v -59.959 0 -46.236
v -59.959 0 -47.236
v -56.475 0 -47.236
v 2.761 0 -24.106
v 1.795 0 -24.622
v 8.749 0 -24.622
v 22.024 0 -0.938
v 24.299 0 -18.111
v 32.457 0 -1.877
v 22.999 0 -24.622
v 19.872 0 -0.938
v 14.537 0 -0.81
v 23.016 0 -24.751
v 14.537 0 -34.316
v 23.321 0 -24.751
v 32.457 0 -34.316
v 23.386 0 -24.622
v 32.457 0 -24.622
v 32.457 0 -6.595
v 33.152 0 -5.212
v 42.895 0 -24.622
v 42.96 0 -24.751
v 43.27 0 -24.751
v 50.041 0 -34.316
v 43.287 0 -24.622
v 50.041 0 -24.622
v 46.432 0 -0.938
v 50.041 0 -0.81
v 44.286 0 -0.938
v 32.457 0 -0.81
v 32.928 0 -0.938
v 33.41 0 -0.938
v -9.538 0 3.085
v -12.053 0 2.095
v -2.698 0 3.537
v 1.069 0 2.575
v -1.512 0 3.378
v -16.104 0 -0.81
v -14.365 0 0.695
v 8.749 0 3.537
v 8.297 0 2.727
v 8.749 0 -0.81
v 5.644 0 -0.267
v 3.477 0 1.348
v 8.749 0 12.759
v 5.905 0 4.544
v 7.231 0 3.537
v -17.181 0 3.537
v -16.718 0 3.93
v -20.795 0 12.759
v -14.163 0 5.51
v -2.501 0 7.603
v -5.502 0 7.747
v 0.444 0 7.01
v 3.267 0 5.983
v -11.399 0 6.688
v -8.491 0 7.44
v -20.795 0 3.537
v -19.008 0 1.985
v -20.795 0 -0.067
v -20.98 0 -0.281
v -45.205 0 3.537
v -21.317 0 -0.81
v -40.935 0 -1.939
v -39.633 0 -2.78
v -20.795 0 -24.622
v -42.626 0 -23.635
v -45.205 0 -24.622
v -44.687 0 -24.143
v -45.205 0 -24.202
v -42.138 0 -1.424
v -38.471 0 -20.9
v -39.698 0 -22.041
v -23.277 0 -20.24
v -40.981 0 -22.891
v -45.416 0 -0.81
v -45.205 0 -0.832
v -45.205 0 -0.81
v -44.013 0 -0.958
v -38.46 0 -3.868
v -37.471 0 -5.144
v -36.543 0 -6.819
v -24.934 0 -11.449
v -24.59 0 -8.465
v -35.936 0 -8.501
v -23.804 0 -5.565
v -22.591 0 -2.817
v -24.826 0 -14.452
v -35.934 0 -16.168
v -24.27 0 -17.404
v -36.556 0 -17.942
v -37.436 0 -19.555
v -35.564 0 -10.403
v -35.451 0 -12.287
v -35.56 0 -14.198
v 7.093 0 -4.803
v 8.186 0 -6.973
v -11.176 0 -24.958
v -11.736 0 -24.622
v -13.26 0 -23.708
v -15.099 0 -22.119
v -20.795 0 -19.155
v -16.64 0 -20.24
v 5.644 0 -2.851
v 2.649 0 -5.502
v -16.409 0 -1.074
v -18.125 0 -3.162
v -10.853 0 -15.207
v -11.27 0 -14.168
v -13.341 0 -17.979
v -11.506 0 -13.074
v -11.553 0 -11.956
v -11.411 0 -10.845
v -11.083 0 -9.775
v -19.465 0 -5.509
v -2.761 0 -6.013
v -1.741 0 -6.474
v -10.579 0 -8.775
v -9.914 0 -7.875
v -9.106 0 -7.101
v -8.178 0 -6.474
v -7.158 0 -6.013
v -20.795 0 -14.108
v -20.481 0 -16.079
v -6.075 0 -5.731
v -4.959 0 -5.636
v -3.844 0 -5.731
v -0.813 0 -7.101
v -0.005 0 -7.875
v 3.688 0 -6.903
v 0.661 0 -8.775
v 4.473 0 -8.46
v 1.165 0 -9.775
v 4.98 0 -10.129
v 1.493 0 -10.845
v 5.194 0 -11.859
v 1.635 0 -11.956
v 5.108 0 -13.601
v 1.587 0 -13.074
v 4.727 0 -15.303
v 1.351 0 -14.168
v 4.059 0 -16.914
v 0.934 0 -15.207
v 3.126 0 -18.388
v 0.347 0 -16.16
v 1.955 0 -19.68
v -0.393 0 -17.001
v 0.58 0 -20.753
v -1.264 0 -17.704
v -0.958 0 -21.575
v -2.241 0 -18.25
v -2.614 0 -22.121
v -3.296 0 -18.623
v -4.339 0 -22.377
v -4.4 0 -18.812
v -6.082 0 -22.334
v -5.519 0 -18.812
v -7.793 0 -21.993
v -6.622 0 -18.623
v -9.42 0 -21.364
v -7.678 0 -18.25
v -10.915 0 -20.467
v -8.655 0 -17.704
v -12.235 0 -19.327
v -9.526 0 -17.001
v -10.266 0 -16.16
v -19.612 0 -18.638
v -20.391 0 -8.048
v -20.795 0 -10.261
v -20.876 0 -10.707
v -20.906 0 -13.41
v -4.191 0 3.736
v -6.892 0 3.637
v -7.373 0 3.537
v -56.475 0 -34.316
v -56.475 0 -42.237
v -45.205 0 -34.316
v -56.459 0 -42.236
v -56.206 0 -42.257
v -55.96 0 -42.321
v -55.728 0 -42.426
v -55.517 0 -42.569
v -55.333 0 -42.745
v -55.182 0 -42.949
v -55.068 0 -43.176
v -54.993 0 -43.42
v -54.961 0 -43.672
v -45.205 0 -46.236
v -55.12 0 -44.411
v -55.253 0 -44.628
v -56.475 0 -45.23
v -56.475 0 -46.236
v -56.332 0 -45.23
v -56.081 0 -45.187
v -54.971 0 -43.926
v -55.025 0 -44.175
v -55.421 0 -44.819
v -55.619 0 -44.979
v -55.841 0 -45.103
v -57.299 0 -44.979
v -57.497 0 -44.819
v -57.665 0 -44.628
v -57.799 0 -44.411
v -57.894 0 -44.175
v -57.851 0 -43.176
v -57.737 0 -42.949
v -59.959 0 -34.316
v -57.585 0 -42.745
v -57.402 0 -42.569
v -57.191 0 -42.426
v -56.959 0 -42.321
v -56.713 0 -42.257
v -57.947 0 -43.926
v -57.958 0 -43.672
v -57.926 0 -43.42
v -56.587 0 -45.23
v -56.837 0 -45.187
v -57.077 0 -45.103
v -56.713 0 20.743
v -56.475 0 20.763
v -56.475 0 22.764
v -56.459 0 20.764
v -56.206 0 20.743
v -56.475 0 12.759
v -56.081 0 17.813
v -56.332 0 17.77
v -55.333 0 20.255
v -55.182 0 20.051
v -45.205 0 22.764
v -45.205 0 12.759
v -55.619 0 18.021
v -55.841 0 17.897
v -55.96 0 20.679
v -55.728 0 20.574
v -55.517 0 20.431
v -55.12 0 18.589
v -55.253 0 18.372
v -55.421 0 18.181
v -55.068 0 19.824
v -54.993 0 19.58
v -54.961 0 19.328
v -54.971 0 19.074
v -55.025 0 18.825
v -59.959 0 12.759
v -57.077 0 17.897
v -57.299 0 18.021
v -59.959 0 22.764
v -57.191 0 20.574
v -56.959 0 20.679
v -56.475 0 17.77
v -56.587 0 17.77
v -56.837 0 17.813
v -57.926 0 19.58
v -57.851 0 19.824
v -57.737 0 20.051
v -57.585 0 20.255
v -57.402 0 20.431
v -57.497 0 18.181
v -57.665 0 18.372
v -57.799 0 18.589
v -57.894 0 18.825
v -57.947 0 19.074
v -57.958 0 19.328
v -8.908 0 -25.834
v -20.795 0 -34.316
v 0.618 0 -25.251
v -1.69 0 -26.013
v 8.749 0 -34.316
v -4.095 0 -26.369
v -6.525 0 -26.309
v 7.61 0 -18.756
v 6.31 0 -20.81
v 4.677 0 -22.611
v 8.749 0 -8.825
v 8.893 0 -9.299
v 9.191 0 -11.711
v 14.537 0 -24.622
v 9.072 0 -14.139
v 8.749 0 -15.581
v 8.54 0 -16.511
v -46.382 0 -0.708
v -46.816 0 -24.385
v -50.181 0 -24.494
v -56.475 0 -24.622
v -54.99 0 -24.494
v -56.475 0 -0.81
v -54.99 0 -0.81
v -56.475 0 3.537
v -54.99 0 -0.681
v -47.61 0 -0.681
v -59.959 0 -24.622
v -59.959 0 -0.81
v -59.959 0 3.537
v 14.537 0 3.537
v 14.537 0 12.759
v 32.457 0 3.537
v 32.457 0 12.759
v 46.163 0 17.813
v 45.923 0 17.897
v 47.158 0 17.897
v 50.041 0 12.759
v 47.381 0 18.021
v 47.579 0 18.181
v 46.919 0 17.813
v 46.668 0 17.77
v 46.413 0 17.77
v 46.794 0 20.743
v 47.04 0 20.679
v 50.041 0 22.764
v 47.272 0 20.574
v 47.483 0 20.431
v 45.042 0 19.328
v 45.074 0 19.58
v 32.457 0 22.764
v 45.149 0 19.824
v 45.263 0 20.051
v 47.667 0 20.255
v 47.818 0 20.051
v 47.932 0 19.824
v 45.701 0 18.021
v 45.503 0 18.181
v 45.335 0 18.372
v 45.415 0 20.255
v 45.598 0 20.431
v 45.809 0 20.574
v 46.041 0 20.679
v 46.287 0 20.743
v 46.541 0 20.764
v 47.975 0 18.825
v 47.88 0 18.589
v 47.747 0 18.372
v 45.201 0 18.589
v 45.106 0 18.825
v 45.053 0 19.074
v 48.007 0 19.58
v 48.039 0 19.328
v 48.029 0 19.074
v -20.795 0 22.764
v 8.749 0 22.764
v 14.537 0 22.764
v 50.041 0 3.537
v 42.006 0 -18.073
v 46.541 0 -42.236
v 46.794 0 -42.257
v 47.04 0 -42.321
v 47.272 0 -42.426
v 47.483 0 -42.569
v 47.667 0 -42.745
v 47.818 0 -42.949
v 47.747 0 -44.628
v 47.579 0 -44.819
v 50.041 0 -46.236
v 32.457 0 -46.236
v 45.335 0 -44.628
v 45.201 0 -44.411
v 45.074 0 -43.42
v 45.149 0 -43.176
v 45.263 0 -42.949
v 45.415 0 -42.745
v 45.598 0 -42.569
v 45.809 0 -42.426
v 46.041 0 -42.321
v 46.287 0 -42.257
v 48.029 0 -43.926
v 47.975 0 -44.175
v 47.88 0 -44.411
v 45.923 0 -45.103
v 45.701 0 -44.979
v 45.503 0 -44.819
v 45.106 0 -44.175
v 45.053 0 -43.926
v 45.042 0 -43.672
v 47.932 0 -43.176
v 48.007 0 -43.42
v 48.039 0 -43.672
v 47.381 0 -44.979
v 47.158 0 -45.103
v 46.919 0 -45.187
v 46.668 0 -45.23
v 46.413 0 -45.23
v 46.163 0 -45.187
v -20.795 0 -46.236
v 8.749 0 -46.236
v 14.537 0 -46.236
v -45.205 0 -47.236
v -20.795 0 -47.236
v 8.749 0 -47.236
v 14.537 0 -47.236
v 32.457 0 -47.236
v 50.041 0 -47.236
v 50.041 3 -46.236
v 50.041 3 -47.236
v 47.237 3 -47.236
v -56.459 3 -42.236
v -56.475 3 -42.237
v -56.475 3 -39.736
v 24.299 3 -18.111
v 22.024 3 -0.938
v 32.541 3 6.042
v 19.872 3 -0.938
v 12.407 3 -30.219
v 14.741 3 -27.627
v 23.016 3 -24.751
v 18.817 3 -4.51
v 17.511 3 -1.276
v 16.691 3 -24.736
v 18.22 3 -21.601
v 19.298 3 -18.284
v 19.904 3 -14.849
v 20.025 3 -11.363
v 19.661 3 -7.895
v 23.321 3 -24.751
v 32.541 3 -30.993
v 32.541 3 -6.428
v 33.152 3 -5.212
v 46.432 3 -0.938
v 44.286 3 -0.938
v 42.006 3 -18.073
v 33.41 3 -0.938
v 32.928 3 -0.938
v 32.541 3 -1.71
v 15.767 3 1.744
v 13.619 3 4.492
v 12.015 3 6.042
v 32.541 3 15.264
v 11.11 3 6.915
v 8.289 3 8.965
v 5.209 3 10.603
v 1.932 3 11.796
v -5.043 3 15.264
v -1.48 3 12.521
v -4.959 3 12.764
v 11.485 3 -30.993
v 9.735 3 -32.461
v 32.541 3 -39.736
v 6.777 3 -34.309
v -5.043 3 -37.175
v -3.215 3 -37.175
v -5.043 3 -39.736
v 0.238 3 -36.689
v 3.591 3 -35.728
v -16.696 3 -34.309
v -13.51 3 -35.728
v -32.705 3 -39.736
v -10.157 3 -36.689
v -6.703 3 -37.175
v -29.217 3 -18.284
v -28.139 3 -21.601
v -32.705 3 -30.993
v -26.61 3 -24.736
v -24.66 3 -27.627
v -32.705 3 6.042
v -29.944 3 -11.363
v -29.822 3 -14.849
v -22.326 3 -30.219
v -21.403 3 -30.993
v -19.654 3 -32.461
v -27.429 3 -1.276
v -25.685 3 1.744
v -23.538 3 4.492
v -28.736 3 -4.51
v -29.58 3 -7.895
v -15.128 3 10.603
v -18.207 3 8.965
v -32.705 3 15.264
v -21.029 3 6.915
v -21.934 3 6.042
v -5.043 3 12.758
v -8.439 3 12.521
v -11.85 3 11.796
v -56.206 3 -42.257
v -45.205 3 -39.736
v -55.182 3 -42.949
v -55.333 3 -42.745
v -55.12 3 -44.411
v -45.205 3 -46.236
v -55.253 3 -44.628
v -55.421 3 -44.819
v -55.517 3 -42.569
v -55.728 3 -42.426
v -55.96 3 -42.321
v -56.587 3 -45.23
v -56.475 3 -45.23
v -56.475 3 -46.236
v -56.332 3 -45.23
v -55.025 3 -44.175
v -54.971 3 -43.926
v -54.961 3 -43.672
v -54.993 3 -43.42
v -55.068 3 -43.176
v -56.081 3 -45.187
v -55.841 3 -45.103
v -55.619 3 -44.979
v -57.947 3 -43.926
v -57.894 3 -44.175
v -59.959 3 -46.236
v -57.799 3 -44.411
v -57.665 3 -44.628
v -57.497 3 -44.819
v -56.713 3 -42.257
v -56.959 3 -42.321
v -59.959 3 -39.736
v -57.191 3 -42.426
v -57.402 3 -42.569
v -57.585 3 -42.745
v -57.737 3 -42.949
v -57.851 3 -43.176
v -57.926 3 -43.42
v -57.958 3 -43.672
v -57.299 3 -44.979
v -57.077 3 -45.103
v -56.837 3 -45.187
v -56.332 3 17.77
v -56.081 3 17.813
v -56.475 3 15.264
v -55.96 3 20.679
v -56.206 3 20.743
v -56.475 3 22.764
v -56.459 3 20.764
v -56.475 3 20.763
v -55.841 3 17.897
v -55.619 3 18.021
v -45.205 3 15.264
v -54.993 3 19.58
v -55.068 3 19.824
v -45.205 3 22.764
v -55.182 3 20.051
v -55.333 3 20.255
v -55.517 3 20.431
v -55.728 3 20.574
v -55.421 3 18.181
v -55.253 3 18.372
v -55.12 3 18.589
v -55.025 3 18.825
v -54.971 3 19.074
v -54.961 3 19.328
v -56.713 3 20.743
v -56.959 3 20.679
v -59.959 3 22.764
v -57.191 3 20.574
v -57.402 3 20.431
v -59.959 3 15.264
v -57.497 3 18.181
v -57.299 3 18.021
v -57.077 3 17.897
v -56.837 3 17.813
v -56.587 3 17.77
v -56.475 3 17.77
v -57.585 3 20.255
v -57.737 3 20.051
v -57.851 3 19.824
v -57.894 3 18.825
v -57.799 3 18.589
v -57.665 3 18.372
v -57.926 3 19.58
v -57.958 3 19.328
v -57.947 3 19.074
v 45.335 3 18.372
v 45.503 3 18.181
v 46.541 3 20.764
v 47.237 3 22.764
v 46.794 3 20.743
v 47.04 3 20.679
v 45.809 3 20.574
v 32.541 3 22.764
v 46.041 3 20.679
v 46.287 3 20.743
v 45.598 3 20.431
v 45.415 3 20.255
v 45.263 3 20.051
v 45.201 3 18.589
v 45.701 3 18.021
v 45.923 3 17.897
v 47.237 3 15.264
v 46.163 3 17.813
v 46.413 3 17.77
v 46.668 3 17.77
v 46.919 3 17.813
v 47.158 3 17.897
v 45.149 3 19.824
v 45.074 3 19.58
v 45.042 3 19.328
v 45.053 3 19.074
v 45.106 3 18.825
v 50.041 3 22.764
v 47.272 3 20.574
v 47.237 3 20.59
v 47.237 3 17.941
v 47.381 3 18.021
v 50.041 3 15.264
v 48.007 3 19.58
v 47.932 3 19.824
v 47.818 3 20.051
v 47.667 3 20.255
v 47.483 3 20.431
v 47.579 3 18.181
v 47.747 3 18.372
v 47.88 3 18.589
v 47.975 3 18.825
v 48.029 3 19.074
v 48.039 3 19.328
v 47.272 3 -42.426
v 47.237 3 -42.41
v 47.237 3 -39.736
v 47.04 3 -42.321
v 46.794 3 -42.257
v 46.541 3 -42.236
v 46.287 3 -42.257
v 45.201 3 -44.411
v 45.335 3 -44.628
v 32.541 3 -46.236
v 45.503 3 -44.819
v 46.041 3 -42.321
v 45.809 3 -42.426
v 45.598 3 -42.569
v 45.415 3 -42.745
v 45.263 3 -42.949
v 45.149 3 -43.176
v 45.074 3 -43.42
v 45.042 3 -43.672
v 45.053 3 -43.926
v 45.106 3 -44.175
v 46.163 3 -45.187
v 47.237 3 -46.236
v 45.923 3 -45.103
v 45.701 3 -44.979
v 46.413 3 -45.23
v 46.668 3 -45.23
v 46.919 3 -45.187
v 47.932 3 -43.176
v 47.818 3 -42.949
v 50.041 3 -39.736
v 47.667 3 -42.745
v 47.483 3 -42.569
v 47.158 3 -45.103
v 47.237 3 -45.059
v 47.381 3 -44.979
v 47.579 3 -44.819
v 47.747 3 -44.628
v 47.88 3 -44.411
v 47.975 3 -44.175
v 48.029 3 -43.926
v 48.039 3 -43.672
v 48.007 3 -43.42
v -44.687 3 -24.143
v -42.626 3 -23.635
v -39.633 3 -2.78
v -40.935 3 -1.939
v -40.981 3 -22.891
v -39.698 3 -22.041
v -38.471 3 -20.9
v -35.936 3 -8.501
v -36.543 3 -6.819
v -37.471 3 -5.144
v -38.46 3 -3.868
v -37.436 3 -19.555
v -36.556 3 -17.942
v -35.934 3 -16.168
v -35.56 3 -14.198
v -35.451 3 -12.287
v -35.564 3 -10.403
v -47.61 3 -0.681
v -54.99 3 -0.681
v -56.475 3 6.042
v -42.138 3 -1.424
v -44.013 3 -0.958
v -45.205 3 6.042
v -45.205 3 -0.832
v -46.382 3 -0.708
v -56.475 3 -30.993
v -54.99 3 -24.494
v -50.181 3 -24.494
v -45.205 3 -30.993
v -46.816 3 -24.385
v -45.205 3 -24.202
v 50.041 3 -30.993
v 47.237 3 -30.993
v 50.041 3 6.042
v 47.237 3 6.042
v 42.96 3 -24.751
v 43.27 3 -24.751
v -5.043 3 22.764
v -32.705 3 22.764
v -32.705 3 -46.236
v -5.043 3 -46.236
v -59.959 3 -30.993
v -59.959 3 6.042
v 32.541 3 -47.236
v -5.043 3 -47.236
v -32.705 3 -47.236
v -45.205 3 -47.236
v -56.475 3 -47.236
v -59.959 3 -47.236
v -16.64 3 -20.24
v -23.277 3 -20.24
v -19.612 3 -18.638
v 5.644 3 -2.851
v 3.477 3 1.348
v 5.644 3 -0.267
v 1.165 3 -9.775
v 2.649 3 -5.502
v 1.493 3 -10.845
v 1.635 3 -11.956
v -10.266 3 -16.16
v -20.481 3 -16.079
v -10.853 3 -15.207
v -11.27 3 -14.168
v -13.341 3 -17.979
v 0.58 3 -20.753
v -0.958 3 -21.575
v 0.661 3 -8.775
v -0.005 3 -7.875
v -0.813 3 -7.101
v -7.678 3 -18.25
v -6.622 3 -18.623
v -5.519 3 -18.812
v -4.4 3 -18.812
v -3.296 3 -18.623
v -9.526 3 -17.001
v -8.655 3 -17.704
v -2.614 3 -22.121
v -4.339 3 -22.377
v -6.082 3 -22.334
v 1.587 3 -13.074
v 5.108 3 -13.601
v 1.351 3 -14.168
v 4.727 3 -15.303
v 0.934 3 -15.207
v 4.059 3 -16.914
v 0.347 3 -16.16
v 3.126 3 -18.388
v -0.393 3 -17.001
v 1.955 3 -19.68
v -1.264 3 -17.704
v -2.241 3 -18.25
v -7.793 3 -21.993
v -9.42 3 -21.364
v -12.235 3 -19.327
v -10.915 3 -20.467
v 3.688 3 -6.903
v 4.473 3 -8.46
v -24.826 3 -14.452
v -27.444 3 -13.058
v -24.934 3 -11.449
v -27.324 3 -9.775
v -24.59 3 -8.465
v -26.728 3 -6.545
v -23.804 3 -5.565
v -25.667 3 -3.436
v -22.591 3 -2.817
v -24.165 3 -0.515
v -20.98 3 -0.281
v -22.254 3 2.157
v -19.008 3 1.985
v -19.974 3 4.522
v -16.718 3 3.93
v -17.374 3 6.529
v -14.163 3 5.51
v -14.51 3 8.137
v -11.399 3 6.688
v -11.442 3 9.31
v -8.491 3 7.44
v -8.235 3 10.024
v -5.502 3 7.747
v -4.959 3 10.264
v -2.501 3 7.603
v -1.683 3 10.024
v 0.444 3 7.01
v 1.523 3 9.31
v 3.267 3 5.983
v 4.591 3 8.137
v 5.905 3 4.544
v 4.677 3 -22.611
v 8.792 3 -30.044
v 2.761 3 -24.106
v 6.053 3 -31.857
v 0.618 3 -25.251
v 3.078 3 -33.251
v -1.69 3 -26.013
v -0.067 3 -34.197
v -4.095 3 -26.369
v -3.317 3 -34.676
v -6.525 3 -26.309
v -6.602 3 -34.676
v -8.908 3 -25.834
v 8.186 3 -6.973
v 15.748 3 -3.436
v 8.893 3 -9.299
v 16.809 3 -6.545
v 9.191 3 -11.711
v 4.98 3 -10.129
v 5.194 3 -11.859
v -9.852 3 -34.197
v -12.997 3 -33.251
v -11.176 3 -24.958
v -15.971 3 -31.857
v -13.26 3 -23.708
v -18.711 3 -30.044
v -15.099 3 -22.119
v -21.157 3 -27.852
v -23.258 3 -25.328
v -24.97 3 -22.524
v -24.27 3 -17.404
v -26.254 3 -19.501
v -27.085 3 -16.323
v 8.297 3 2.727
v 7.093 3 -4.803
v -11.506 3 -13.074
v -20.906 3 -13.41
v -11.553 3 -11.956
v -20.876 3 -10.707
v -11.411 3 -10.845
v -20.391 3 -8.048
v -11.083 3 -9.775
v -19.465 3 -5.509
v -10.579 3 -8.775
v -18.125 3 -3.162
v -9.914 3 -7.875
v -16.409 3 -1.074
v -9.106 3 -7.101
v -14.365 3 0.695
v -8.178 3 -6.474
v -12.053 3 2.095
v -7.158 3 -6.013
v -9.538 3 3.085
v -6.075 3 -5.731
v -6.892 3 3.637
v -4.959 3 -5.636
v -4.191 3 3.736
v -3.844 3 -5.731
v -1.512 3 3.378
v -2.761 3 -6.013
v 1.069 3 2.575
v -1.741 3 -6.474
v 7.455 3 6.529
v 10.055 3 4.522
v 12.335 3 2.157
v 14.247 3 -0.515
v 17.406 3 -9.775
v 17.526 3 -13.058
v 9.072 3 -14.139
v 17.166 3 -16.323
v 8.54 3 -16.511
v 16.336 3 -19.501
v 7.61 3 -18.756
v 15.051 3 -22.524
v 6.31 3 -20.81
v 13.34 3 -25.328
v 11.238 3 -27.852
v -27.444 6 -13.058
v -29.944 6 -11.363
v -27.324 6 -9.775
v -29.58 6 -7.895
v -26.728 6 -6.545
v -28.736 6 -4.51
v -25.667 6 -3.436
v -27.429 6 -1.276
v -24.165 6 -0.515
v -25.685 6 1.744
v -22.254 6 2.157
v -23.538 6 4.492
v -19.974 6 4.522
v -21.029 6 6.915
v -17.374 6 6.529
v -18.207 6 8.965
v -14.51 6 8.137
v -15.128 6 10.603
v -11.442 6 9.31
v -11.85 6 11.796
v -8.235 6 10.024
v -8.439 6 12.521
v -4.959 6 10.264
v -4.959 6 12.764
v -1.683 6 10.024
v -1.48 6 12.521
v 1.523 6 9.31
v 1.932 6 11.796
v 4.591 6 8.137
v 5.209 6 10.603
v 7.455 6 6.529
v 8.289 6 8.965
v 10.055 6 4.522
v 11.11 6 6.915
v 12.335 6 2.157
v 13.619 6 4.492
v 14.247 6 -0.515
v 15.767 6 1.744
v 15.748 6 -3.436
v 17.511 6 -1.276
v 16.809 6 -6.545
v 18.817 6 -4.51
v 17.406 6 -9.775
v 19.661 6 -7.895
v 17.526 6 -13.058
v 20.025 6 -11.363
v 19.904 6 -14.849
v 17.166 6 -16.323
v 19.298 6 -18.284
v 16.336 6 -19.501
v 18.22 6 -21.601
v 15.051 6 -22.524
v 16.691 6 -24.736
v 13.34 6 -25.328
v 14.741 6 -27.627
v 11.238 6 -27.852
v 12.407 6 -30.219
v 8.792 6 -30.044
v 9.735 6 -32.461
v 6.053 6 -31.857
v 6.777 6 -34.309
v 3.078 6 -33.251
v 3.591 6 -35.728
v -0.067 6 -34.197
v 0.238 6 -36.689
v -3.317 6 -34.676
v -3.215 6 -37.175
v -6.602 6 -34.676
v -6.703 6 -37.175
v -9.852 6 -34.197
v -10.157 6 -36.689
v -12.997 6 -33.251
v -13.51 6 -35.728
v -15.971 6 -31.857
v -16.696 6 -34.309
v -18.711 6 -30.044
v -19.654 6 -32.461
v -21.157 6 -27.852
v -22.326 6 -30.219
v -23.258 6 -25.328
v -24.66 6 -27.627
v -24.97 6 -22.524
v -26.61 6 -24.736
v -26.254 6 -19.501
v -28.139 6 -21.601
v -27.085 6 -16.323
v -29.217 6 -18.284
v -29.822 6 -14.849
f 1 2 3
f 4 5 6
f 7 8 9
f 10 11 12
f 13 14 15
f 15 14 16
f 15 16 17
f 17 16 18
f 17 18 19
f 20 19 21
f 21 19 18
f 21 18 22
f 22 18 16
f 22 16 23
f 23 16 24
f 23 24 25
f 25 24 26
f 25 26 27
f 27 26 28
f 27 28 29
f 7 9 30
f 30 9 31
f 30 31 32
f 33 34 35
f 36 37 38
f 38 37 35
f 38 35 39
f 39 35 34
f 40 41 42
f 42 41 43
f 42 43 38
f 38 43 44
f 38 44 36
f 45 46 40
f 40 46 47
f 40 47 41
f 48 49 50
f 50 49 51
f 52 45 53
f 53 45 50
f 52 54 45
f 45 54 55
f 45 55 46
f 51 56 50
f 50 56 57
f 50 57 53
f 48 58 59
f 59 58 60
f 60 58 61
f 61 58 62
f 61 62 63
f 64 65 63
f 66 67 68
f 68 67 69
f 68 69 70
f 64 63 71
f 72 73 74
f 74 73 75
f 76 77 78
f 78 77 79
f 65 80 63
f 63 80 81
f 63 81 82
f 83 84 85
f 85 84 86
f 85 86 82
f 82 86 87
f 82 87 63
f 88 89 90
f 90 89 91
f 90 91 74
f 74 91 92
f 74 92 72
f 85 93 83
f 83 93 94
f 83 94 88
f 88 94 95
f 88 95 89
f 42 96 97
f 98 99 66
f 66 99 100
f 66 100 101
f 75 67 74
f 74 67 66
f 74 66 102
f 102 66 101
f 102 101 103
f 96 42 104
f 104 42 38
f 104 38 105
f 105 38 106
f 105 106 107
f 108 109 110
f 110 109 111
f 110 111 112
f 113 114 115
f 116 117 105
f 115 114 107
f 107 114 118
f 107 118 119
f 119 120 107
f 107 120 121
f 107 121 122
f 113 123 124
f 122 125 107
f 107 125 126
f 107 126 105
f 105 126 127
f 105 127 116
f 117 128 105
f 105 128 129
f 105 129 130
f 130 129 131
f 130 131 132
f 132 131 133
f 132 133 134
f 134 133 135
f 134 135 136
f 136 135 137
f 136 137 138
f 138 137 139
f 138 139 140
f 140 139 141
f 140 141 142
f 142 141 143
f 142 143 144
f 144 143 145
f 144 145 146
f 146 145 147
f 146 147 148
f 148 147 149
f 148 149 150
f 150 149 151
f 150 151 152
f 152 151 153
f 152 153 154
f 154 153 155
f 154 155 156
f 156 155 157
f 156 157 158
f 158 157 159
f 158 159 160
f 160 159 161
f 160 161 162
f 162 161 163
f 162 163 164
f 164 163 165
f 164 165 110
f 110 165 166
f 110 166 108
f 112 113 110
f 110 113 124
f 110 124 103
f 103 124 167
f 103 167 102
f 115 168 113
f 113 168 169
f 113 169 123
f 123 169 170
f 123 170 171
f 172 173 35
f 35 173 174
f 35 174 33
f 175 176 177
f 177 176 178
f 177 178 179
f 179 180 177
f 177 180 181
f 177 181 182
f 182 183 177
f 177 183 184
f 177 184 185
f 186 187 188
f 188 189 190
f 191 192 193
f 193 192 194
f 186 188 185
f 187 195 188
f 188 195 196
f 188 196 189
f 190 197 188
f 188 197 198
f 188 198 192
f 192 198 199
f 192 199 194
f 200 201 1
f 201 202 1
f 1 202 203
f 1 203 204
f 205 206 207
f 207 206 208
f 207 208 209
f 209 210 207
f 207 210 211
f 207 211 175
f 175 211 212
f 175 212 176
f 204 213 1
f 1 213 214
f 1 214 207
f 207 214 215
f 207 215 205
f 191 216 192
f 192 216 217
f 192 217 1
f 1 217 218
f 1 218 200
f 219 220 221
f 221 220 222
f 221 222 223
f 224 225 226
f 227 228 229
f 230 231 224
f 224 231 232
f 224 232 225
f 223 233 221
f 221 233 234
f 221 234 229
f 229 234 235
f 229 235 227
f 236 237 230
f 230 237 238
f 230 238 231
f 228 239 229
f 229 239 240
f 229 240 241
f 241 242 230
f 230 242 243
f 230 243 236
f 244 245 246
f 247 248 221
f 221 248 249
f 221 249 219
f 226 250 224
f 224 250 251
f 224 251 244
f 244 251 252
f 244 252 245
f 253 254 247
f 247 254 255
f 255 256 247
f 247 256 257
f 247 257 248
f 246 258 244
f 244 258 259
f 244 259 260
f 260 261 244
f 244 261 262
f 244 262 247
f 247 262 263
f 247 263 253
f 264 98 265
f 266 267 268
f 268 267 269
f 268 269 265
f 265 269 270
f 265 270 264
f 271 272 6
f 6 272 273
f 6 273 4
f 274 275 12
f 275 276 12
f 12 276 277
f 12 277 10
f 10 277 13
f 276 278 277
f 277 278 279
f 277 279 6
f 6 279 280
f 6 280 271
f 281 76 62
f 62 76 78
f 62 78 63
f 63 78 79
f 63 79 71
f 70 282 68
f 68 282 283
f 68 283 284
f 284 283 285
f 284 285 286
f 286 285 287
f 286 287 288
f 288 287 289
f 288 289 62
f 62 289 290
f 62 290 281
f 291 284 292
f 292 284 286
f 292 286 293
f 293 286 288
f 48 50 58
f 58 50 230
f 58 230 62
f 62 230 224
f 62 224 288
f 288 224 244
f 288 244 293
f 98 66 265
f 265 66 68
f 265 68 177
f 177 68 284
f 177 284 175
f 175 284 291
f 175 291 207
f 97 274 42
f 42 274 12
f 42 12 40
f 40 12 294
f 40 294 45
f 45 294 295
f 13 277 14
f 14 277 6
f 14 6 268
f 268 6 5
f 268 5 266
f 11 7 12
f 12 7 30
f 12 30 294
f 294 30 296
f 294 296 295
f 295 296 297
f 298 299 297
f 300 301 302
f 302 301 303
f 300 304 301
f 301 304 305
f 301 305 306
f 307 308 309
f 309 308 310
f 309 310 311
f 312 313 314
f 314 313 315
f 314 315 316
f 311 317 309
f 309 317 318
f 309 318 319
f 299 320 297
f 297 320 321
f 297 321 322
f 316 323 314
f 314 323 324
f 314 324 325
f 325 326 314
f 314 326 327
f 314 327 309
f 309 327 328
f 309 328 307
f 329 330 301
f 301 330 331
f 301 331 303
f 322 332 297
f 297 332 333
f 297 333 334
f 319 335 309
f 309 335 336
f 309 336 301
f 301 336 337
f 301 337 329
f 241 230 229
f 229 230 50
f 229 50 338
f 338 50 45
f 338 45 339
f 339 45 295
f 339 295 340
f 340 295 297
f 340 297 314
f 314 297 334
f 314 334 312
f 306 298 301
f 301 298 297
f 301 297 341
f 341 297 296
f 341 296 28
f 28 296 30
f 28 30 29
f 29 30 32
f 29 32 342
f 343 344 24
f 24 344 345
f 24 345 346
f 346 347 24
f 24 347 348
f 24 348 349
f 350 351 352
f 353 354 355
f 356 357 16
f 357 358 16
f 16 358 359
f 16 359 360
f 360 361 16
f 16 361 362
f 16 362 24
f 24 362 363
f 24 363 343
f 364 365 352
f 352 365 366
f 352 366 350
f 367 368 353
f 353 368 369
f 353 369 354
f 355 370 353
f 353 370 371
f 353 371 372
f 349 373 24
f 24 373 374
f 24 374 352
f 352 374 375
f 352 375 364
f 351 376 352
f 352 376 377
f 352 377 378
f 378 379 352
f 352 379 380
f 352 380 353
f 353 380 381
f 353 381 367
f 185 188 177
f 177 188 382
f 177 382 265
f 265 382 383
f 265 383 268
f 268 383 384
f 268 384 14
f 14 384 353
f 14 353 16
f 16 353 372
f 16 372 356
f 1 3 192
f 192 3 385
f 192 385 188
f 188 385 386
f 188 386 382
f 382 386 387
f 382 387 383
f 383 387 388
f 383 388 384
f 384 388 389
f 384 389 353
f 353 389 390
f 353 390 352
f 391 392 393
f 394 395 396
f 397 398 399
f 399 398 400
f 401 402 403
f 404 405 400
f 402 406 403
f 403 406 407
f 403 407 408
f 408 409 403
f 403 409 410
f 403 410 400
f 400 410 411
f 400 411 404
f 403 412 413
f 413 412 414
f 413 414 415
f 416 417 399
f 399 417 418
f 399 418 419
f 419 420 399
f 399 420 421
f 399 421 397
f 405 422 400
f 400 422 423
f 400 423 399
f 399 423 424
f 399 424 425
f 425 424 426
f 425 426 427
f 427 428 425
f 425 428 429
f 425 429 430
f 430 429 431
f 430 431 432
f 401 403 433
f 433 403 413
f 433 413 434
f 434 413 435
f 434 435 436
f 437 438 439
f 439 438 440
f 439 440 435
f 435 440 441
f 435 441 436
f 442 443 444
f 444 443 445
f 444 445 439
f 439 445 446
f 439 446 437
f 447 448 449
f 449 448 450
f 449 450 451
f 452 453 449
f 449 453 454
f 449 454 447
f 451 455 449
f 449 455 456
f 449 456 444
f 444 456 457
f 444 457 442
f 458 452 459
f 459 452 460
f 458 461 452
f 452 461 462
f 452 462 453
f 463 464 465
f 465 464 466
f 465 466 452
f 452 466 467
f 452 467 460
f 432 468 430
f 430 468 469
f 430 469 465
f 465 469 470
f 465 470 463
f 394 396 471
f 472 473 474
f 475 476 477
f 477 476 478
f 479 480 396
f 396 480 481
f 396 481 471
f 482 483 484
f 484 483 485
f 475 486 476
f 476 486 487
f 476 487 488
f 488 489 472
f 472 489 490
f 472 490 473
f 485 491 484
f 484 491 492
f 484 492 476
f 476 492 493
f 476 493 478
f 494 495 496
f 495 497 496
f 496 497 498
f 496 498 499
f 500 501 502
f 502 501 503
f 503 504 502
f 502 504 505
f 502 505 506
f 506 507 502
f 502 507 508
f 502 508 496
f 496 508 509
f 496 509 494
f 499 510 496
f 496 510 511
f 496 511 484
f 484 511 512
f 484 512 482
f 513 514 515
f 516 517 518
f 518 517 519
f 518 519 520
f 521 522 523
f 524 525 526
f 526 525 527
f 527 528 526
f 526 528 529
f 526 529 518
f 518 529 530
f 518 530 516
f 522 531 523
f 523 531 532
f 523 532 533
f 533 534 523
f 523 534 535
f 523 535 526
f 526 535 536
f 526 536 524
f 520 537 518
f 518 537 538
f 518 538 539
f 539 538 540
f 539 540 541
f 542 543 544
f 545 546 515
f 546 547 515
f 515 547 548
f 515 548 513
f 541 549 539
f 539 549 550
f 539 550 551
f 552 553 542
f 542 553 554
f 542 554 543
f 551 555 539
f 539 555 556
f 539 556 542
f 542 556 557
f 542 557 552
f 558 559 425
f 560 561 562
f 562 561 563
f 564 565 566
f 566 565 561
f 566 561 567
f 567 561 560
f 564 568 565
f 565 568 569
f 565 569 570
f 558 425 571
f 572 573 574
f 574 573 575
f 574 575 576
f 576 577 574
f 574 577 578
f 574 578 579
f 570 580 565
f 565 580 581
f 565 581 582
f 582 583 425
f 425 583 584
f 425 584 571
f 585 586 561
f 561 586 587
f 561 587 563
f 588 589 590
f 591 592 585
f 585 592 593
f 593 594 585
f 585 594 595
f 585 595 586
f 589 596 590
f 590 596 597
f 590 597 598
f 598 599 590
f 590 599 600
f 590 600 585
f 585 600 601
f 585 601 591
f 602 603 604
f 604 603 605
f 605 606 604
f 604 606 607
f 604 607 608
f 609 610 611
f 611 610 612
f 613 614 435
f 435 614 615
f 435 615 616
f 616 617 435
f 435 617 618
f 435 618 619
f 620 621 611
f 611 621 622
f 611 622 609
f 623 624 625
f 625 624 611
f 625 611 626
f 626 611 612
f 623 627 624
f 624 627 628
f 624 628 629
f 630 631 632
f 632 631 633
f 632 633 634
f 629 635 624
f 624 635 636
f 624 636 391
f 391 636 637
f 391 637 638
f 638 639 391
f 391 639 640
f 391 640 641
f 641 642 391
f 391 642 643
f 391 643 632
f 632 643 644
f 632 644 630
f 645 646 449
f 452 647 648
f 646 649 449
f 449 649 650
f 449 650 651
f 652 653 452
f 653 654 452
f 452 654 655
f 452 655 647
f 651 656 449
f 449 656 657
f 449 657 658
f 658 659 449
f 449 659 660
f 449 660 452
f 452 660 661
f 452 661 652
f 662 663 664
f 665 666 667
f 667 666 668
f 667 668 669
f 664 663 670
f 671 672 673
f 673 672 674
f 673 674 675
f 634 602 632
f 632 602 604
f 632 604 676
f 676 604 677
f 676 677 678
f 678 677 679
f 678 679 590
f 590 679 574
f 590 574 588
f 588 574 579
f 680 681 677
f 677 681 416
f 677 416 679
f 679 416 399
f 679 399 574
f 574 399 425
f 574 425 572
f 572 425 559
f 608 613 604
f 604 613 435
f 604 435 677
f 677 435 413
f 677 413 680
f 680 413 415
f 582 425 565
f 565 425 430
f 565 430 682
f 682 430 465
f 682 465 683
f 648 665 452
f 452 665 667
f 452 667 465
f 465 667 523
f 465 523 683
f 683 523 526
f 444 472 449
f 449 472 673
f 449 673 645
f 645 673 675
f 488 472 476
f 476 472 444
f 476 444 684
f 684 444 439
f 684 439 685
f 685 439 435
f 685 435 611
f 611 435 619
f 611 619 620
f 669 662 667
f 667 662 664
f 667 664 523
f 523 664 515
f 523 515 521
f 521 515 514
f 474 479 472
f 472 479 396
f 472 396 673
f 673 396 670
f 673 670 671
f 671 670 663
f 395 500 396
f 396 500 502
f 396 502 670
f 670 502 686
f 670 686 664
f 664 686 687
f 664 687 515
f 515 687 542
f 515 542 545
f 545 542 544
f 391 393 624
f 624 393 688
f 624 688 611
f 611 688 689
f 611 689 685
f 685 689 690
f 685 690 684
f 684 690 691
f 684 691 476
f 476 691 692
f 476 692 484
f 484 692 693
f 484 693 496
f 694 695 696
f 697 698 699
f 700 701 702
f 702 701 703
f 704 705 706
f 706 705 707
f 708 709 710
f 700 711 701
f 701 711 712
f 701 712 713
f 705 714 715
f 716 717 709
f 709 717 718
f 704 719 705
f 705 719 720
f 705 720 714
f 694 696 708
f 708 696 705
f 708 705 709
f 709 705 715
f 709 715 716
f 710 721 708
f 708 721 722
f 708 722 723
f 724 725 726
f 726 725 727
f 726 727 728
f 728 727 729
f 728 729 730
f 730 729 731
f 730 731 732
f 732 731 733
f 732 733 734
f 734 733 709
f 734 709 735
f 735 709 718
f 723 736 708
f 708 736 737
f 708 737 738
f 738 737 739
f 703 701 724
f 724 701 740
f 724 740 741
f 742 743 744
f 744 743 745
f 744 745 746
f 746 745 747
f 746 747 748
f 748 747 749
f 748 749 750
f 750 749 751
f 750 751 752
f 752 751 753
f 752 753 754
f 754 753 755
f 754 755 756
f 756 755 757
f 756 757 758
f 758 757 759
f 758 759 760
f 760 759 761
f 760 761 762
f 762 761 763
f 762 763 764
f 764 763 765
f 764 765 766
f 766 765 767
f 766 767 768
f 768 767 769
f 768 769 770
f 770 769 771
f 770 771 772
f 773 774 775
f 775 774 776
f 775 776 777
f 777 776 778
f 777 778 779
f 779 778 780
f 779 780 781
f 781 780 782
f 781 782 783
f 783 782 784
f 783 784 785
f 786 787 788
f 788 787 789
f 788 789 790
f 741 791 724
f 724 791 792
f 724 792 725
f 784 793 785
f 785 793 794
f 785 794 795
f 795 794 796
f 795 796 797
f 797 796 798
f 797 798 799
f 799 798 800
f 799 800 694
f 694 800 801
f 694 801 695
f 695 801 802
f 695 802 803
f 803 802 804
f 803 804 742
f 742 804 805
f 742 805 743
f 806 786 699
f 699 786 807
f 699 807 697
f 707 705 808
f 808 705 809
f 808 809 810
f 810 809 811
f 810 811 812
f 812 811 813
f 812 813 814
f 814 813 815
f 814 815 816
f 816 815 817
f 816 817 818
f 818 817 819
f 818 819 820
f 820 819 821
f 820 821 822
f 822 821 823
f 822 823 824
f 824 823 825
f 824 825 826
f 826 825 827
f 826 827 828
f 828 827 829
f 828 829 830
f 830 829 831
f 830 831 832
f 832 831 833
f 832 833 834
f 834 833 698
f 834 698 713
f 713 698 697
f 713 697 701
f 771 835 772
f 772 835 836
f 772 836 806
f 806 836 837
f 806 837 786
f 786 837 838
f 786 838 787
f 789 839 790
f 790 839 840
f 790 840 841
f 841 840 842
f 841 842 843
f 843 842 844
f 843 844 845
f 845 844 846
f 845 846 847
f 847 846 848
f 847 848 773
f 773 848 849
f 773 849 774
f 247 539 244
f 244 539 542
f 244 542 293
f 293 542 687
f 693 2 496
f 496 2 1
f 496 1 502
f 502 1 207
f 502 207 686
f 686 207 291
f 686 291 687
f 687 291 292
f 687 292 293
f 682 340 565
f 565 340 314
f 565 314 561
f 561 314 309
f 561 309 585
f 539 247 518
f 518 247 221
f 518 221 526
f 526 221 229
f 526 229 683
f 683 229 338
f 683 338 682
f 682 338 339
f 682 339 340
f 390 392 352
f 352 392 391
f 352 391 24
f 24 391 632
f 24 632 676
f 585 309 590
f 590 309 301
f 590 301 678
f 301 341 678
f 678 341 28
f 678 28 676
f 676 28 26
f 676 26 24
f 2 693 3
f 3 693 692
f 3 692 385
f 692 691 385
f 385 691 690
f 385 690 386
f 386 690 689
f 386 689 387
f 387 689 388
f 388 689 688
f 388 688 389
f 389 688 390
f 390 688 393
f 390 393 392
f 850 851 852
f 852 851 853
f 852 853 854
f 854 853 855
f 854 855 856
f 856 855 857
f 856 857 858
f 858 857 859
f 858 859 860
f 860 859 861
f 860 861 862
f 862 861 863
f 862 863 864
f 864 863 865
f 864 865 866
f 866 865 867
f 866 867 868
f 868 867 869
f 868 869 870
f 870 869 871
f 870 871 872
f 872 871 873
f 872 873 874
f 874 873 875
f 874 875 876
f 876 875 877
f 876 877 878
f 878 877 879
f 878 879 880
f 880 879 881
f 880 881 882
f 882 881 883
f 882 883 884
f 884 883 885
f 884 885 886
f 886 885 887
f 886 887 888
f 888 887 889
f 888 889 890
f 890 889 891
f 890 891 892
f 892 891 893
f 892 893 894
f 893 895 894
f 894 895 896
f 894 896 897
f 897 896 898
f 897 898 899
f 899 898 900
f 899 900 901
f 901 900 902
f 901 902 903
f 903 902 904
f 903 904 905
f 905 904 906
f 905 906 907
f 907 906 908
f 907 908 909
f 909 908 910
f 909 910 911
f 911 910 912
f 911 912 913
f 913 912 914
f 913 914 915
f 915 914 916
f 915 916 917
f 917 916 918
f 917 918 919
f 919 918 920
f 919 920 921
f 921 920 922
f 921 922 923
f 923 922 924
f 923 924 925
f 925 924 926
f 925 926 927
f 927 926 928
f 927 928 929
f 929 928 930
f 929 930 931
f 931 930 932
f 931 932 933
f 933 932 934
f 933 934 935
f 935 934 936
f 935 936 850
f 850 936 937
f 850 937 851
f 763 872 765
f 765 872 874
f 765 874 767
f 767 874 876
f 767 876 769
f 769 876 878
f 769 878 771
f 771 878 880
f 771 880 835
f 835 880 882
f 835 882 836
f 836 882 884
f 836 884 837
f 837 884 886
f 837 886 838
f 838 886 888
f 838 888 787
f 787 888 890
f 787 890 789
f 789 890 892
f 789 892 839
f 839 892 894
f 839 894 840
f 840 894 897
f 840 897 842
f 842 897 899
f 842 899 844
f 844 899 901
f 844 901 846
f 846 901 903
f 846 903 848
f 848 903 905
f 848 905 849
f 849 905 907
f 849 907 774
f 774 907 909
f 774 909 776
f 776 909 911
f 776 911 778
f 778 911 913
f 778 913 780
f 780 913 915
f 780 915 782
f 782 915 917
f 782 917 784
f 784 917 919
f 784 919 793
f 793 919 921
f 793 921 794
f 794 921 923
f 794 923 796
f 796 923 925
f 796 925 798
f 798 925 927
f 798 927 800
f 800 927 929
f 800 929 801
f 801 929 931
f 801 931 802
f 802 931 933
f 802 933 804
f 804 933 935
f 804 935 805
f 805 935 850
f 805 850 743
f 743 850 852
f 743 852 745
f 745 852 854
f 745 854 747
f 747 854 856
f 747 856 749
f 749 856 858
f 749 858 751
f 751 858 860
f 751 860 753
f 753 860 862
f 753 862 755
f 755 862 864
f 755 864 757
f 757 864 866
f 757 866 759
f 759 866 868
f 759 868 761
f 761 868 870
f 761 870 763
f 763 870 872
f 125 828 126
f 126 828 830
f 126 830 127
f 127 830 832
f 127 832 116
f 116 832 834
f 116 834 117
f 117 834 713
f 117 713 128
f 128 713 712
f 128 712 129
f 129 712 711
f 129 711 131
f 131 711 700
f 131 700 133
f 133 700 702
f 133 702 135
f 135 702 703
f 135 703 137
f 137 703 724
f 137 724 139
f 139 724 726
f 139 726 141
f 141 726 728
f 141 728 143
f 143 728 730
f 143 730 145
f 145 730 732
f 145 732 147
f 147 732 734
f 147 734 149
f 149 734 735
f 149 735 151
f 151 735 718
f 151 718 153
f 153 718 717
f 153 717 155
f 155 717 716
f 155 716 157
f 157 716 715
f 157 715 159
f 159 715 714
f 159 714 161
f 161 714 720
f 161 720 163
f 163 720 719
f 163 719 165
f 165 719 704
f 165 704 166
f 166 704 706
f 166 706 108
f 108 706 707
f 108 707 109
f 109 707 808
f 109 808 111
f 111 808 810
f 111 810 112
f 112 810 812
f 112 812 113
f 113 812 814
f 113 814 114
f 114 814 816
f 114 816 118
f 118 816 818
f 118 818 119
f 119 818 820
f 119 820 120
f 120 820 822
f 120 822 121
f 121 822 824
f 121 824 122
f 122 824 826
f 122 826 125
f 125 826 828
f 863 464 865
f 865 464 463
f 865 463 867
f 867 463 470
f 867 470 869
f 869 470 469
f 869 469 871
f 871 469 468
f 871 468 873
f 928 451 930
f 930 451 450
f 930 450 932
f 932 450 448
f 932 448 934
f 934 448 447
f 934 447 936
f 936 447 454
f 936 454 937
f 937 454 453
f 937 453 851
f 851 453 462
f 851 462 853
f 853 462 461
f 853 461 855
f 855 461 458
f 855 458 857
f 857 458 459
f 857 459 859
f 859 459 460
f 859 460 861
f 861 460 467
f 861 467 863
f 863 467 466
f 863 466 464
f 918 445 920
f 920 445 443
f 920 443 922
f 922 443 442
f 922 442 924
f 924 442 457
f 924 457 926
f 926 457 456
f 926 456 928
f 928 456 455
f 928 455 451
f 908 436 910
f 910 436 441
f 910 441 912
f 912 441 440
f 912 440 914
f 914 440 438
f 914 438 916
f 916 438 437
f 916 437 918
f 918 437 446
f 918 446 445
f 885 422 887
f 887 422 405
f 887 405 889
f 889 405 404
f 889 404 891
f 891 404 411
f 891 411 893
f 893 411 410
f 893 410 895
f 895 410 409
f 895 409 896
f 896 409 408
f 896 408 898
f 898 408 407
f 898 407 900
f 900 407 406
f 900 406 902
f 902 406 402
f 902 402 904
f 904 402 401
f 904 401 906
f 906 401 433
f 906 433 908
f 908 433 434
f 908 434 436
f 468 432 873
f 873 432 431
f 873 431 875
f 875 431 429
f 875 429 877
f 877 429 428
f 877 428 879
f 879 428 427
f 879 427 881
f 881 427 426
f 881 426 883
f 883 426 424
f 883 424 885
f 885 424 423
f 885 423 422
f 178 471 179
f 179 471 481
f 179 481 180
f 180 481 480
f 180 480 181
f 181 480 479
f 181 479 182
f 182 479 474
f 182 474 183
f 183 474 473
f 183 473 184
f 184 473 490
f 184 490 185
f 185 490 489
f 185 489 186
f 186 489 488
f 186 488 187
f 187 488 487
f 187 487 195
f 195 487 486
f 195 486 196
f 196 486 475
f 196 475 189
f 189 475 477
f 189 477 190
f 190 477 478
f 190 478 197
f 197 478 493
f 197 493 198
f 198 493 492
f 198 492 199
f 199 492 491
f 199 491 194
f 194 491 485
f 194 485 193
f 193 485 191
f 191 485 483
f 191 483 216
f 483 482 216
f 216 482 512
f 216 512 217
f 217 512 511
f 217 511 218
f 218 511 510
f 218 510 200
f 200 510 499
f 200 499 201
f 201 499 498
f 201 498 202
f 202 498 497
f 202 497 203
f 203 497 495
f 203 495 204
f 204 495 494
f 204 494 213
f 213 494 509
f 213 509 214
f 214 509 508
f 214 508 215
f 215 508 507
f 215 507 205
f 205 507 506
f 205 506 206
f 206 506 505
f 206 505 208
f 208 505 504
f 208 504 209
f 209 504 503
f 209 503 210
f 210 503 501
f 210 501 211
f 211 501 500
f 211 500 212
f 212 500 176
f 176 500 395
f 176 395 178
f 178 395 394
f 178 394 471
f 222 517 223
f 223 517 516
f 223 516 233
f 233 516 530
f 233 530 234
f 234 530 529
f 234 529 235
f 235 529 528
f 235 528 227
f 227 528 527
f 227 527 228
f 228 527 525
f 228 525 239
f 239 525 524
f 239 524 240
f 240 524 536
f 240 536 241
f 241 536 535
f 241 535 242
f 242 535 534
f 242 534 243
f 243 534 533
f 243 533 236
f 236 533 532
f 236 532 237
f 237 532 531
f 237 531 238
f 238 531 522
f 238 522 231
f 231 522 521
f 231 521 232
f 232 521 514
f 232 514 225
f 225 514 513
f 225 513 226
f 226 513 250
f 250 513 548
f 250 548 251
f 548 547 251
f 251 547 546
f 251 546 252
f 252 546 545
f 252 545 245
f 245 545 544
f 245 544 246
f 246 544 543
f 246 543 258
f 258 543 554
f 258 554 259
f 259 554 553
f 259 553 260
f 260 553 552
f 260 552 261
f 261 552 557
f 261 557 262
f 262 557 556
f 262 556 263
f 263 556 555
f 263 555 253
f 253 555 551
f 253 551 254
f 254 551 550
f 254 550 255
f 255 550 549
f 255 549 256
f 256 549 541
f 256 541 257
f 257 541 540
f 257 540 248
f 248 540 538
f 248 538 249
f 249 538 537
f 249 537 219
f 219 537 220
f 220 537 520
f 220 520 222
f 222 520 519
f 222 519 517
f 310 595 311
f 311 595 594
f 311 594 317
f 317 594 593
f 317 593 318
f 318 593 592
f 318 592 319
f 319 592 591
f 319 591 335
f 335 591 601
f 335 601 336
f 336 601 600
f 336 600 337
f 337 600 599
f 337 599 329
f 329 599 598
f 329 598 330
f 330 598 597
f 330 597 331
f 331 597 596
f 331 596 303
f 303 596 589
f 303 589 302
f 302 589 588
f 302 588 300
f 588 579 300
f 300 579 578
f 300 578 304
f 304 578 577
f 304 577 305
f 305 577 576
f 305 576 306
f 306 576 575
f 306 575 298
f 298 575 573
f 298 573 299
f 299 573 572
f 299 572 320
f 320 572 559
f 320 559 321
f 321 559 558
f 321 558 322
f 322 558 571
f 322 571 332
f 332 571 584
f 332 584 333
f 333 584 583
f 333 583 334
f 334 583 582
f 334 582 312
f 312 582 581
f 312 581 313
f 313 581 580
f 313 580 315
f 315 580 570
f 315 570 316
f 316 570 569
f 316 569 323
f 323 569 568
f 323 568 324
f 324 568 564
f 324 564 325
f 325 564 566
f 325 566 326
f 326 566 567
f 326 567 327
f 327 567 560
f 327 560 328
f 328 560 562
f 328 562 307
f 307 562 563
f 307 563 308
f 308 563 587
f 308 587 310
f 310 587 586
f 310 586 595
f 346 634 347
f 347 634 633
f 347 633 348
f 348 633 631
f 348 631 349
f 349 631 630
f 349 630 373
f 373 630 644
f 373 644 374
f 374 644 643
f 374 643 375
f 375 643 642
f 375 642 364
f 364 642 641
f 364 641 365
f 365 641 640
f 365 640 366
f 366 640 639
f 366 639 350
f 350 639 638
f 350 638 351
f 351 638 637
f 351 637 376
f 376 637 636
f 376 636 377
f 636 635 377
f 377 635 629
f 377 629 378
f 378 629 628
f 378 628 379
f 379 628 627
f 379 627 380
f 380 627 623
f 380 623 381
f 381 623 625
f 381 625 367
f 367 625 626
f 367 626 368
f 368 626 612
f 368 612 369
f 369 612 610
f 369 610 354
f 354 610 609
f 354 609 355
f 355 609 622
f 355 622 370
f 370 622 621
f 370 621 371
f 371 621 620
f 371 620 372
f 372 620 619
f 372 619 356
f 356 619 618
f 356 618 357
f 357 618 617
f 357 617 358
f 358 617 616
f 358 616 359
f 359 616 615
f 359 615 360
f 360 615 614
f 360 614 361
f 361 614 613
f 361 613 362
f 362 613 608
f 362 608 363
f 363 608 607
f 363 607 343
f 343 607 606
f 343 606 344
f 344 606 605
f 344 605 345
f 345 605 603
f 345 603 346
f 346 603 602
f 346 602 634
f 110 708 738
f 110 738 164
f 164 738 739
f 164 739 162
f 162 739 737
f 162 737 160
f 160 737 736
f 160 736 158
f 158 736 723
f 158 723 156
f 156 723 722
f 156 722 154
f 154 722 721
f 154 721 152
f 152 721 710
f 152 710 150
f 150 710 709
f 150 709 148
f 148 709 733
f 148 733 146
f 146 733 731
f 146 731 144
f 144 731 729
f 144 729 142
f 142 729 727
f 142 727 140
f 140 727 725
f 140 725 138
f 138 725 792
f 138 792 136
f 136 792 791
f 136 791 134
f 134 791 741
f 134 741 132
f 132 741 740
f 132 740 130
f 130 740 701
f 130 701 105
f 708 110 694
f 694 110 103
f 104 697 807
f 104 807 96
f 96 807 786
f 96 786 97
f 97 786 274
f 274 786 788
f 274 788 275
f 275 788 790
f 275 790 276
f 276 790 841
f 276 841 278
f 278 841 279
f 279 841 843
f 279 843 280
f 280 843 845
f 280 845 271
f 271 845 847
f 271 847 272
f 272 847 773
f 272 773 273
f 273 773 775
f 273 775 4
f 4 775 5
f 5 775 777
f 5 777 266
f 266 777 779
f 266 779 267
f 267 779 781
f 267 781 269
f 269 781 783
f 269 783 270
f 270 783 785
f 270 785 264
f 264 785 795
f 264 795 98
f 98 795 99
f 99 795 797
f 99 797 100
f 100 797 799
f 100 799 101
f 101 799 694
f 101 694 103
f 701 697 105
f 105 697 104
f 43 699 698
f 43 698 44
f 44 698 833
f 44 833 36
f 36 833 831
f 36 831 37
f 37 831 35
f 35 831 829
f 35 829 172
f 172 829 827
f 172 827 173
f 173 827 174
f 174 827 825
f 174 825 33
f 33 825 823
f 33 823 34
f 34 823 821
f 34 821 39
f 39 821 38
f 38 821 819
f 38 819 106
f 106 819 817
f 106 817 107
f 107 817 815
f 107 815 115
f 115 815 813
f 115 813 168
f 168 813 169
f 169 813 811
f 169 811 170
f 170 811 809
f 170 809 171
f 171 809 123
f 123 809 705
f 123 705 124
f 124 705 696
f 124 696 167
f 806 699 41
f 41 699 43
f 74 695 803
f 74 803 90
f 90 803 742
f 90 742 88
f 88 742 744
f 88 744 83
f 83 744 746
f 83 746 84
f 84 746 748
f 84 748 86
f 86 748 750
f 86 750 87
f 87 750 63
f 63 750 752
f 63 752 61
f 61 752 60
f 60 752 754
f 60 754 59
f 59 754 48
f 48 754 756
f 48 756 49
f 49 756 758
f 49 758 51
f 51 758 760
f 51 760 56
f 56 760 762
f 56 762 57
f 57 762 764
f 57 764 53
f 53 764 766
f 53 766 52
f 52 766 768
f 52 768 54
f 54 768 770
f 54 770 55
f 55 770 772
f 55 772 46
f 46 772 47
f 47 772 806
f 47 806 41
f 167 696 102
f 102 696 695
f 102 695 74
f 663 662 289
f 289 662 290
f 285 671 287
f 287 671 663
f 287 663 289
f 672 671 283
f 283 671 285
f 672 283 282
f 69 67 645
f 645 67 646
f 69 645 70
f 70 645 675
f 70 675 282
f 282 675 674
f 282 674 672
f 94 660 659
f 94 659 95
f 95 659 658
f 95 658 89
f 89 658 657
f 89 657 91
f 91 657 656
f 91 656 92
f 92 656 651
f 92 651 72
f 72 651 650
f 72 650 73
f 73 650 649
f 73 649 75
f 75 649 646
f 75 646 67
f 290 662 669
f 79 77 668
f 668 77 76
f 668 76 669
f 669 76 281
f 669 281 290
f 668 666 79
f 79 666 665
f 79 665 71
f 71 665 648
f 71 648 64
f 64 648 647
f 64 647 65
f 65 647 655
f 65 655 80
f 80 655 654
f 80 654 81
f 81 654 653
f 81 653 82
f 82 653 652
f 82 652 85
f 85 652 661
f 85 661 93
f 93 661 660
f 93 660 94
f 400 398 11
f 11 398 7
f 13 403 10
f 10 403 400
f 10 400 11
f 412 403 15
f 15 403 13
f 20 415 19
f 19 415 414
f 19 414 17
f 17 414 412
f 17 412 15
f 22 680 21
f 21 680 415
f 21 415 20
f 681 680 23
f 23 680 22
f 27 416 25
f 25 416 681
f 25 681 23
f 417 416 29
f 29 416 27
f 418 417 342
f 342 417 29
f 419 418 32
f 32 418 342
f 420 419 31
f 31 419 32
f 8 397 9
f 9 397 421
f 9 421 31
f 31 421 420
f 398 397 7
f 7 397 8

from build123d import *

# Parameters (mm, degrees)
SKETCH1_W           = 110
SKETCH1_H           = 70
BOSS_EXTRUDE1_DEPTH = 6
SKETCH2_R           = 22.5
CUT_EXTRUDE1_DEPTH  = 3
SKETCH3_R           = 6.6
CUT_EXTRUDE2_DEPTH  = 3.2
SKETCH4_W           = 110
SKETCH4_H           = 70
SKETCH4_R           = 25
CUT_EXTRUDE3_DEPTH  = 3
SKETCH5_R           = 1.5
CUT_EXTRUDE4_DEPTH  = 77.389408912
CUT_EXTRUDE5_DEPTH  = 5
CUT_EXTRUDE6_DEPTH  = 11.5


with BuildPart() as part:
    # Sketch1 → Boss-Extrude1 (new body)
    with BuildSketch(Plane(origin=(0, 0, 0), x_dir=(1, 0, 0), z_dir=(0, 1, 0))):
        with Locations((-4.959349593, 12.235772358)):
            Rectangle(SKETCH1_W, SKETCH1_H)
    extrude(amount=BOSS_EXTRUDE1_DEPTH)

    # Sketch2 → Cut-Extrude1 (cut)
    with BuildSketch(Plane(origin=(0, 6, 0), x_dir=(1, 0, 0), z_dir=(0, 1, 0))):
        with Locations(Location((-4.959349593, 12.235772358, 0), (0, 0, 270))):
            Circle(SKETCH2_R)
    extrude(amount=-CUT_EXTRUDE1_DEPTH, mode=Mode.SUBTRACT)

    # Sketch3 → Cut-Extrude2 (cut)
    with BuildSketch(Plane(origin=(0, 3, 0), x_dir=(1, 0, 0), z_dir=(0, 1, 0))):
        with Locations(Location((-4.959349593, 12.235772358, 0), (0, 0, 270))):
            Circle(SKETCH3_R)
    extrude(amount=-CUT_EXTRUDE2_DEPTH, mode=Mode.SUBTRACT)

    # Sketch4 → Cut-Extrude3 (cut)
    with BuildSketch(Plane(origin=(0, 6, 0), x_dir=(1, 0, 0), z_dir=(0, 1, 0))):
        with Locations((-4.959349593, 12.235772358)):
            Rectangle(SKETCH4_W, SKETCH4_H)
        with Locations(Location((-4.959349593, 12.235772358, 0), (0, 0, 270))):
            Circle(SKETCH4_R, mode=Mode.SUBTRACT)
    extrude(amount=-CUT_EXTRUDE3_DEPTH, mode=Mode.SUBTRACT)

    # Sketch5 → Cut-Extrude4 (cut, through all)
    with BuildSketch(Plane(origin=(0, 3, 0), x_dir=(1, 0, 0), z_dir=(0, 1, 0))):
        with Locations(Location((-56.459349593, 43.735772358, 0), (0, 0, 270))):
            Circle(SKETCH5_R)
        with Locations(Location((-56.459349593, -19.264227642, 0), (0, 0, 270))):
            Circle(SKETCH5_R)
        with Locations(Location((46.540650407, -19.264227642, 0), (0, 0, 270))):
            Circle(SKETCH5_R)
        with Locations(Location((46.540650407, 43.735772358, 0), (0, 0, 270))):
            Circle(SKETCH5_R)
    extrude(amount=-CUT_EXTRUDE4_DEPTH, mode=Mode.SUBTRACT)

    # Sketch6 → Cut-Extrude5 (cut)
    with BuildSketch(Plane(origin=(0, 3, 0), x_dir=(1, 0, 0), z_dir=(0, 1, 0))):
        with BuildLine():
            Line((-16.640340857, 20.239524173), (-13.34062581, 17.978577332))
            ThreePointArc((-13.34062581, 17.978577332), (1.290813758, 20.245832163), (2.648826126, 5.502180284))
            Line((2.648826126, 5.502180284), (5.644170898, 2.851159782))
            ThreePointArc((5.644170898, 2.851159782), (3.751507991, 23.399399015), (-16.640340857, 20.239524173))
        make_face()
        with BuildLine():
            Line((-23.2771021, 20.239524173), (-19.611718907, 18.637973034))
            ThreePointArc((-19.611718907, 18.637973034), (-14.365152691, -0.69523565), (5.644170898, 0.267253101))
            Line((5.644170898, 0.267253101), (8.296708857, -2.726747963))
            ThreePointArc((8.296708857, -2.726747963), (-16.718074041, -3.930009385), (-23.2771021, 20.239524173))
        make_face()
    extrude(amount=-CUT_EXTRUDE5_DEPTH, mode=Mode.SUBTRACT)

    # Sketch7 → Cut-Extrude6 (cut)
    # profile 1 of 2: a face of its own
    with BuildSketch(Plane(origin=(0, 3, 0), x_dir=(1, 0, 0), z_dir=(0, 1, 0))):
        with BuildLine():
            Line((-54.989769689, 0.681181381), (-54.989769689, 24.493681381))
            Line((-54.989769689, 24.493681381), (-50.18147642, 24.493681381))
            add(Edge.make_bspline(
                [(-50.18147642, 24.493681381), (-49.763267768, 24.490670325), (-48.955290829, 24.484852979), (-47.787713285, 24.447968157), (-46.707416615, 24.382718738), (-45.71795377, 24.287676069), (-44.816608381, 24.170974179), (-44.00590428, 24.024694643), (-43.281649522, 23.851964412), (-42.836223506, 23.704698045), (-42.625586997, 23.635057583)],
                knots=[0, 0, 0, 0, 1.314313732, 2.53924729, 3.670748893, 4.714932338, 5.66265055, 6.526160246, 7.303039223, 8, 8, 8, 8], degree=3))
            add(Edge.make_bspline(
                [(-42.625586997, 23.635057583), (-42.350078145, 23.530073675), (-41.805308069, 23.322486546), (-41.029652467, 22.930898138), (-40.299456694, 22.487216143), (-39.610805012, 21.99085572), (-38.979427961, 21.427762563), (-38.38065995, 20.82185632), (-37.838995489, 20.151103505), (-37.34295869, 19.429414748), (-36.895721435, 18.665291678), (-36.506971093, 17.860190313), (-36.18411446, 17.018199309), (-35.916099829, 16.141660177), (-35.704873038, 15.228645535), (-35.560760252, 14.278092268), (-35.465707625, 13.293757068), (-35.456155061, 12.625820092), (-35.451308151, 12.286913052)],
                knots=[0, 0, 0, 0, 0.984719456, 1.947108742, 2.898477687, 3.838006223, 4.779231079, 5.722358779, 6.681677486, 7.655904652, 8.64651281, 9.637519902, 10.640069247, 11.656948941, 12.698408672, 13.768548281, 14.867775369, 16, 16, 16, 16], degree=3))
            add(Edge.make_bspline(
                [(-35.451308151, 12.286913052), (-35.455587376, 11.992582126), (-35.464020036, 11.412572294), (-35.539739131, 10.557765486), (-35.64979588, 9.728317795), (-35.820185869, 8.928179015), (-36.027031541, 8.150338818), (-36.292126927, 7.403087299), (-36.595807714, 6.679569596), (-36.94993278, 5.989568554), (-37.338698275, 5.335858468), (-37.755905135, 4.719621392), (-38.201108366, 4.149650687), (-38.678553297, 3.624220308), (-39.182070082, 3.144122355), (-39.71495526, 2.705346322), (-40.278583873, 2.316477619), (-40.870431469, 1.962235329), (-41.507763705, 1.653214696), (-42.202652366, 1.391753379), (-42.958060916, 1.175082657), (-43.772135159, 0.994305669), (-44.646281677, 0.850904735), (-45.581357498, 0.754794815), (-46.575925951, 0.689800755), (-47.258863452, 0.684110293), (-47.610375158, 0.681181381)],
                knots=[0, 0, 0, 0, 1.105936401, 2.179363191, 3.223086493, 4.248585256, 5.251745608, 6.245858792, 7.225916811, 8.198733463, 9.158002045, 10.082870192, 10.993790845, 11.873723703, 12.748670949, 13.606408763, 14.465103618, 15.319838547, 16.196477973, 17.123216899, 18.106603292, 19.147568657, 20.255746949, 21.433717677, 22.679120308, 24, 24, 24, 24], degree=3))
            Line((-47.610375158, 0.681181381), (-54.989769689, 0.681181381))
        make_face()
        with BuildLine():
            Line((-52.852750458, 3.123489074), (-50.119464701, 3.123489074))
            add(Edge.make_bspline(
                [(-50.119464701, 3.123489074), (-49.726705607, 3.125177015), (-48.971286032, 3.128423544), (-47.885041444, 3.15691148), (-46.89254055, 3.203461091), (-45.993642423, 3.268605816), (-45.188854597, 3.354797645), (-44.476495156, 3.450897429), (-43.858899202, 3.570622943), (-43.485182854, 3.679146434), (-43.312486035, 3.729295864)],
                knots=[0, 0, 0, 0, 1.375205317, 2.645023457, 3.804390687, 4.853969522, 5.800190428, 6.637939096, 7.370582563, 8, 8, 8, 8], degree=3))
            add(Edge.make_bspline(
                [(-43.312486035, 3.729295864), (-43.095123072, 3.805846645), (-42.665588855, 3.957119791), (-42.0472729, 4.233056736), (-41.470622565, 4.559914389), (-40.925588286, 4.923240575), (-40.419901576, 5.335849981), (-39.947569642, 5.788770459), (-39.509543458, 6.284307053), (-39.110348613, 6.821844724), (-38.753104615, 7.398037798), (-38.443737858, 8.007221648), (-38.172605116, 8.642721554), (-37.959798977, 9.314296365), (-37.793005449, 10.01594228), (-37.674863555, 10.74770866), (-37.601284804, 11.509458845), (-37.592702453, 12.027565262), (-37.588327381, 12.291683184)],
                knots=[0, 0, 0, 0, 0.998632004, 1.973411704, 2.929992603, 3.868527914, 4.809262121, 5.754881198, 6.702106254, 7.672490631, 8.653608572, 9.636854334, 10.631411391, 11.644891563, 12.686317036, 13.754757253, 14.855430412, 16, 16, 16, 16], degree=3))
            add(Edge.make_bspline(
                [(-37.588327381, 12.291683184), (-37.591819569, 12.570177041), (-37.598680001, 13.117280688), (-37.684910578, 13.920038812), (-37.810923303, 14.692112523), (-37.993148024, 15.43355346), (-38.225359897, 16.145808141), (-38.515155584, 16.824937309), (-38.846262405, 17.478113292), (-39.240211893, 18.090260316), (-39.671664412, 18.669197362), (-40.150485341, 19.199569198), (-40.669067425, 19.682583991), (-41.221754525, 20.125763958), (-41.824123004, 20.511279324), (-42.461982936, 20.856129779), (-43.144691878, 21.148791469), (-43.61966754, 21.304449446), (-43.861051239, 21.383555179)],
                knots=[0, 0, 0, 0, 1.122418816, 2.205001699, 3.251619955, 4.274784885, 5.280384055, 6.268708349, 7.249350384, 8.229342522, 9.199999885, 10.157847722, 11.105861043, 12.055065948, 13.010012805, 13.98527497, 14.976112212, 16, 16, 16, 16], degree=3))
            add(Edge.make_bspline(
                [(-43.861051239, 21.383555179), (-44.06074386, 21.438775876), (-44.485345162, 21.556190228), (-45.17821723, 21.684269995), (-45.958009586, 21.79723989), (-46.828184338, 21.892884765), (-47.787749569, 21.961514576), (-48.837443267, 22.013026556), (-49.977719148, 22.047769895), (-50.768175316, 22.050142349), (-51.178434052, 22.051373689)],
                knots=[0, 0, 0, 0, 0.674548936, 1.434276114, 2.292660221, 3.240891867, 4.284742987, 5.42552168, 6.663806718, 8, 8, 8, 8], degree=3))
            Line((-51.178434052, 22.051373689), (-52.852750458, 22.051373689))
            Line((-52.852750458, 22.051373689), (-52.852750458, 3.123489074))
        make_face(mode=Mode.SUBTRACT)
    # profile 2 of 2: a face of its own
    with BuildSketch(Plane(origin=(0, 3, 0), x_dir=(1, 0, 0), z_dir=(0, 1, 0))):
        Polygon((19.872381176, 0.938358716), (23.015898303, 24.750858716), (23.321186765, 24.750858716), (33.152429253, 5.212397178), (42.95982108, 24.750858716), (43.269879673, 24.750858716), (46.43247733, 0.938358716), (44.285917834, 0.938358716), (42.005794637, 18.07267362), (33.410016392, 0.938358716), (32.928233039, 0.938358716), (24.299063868, 18.110834678), (22.023710803, 0.938358716), align=None)
    extrude(amount=-CUT_EXTRUDE6_DEPTH, mode=Mode.SUBTRACT)


with BuildPart() as cut_extrude6_kept_piece:
    # of the separate pieces the step leaves, the one the design keeps (cut_extrude6_pieces_kept)
    add(part.part.solids().sort_by_distance((-59.959349593, 0, -47.235772358))[0])


solid = cut_extrude6_kept_piece.part
